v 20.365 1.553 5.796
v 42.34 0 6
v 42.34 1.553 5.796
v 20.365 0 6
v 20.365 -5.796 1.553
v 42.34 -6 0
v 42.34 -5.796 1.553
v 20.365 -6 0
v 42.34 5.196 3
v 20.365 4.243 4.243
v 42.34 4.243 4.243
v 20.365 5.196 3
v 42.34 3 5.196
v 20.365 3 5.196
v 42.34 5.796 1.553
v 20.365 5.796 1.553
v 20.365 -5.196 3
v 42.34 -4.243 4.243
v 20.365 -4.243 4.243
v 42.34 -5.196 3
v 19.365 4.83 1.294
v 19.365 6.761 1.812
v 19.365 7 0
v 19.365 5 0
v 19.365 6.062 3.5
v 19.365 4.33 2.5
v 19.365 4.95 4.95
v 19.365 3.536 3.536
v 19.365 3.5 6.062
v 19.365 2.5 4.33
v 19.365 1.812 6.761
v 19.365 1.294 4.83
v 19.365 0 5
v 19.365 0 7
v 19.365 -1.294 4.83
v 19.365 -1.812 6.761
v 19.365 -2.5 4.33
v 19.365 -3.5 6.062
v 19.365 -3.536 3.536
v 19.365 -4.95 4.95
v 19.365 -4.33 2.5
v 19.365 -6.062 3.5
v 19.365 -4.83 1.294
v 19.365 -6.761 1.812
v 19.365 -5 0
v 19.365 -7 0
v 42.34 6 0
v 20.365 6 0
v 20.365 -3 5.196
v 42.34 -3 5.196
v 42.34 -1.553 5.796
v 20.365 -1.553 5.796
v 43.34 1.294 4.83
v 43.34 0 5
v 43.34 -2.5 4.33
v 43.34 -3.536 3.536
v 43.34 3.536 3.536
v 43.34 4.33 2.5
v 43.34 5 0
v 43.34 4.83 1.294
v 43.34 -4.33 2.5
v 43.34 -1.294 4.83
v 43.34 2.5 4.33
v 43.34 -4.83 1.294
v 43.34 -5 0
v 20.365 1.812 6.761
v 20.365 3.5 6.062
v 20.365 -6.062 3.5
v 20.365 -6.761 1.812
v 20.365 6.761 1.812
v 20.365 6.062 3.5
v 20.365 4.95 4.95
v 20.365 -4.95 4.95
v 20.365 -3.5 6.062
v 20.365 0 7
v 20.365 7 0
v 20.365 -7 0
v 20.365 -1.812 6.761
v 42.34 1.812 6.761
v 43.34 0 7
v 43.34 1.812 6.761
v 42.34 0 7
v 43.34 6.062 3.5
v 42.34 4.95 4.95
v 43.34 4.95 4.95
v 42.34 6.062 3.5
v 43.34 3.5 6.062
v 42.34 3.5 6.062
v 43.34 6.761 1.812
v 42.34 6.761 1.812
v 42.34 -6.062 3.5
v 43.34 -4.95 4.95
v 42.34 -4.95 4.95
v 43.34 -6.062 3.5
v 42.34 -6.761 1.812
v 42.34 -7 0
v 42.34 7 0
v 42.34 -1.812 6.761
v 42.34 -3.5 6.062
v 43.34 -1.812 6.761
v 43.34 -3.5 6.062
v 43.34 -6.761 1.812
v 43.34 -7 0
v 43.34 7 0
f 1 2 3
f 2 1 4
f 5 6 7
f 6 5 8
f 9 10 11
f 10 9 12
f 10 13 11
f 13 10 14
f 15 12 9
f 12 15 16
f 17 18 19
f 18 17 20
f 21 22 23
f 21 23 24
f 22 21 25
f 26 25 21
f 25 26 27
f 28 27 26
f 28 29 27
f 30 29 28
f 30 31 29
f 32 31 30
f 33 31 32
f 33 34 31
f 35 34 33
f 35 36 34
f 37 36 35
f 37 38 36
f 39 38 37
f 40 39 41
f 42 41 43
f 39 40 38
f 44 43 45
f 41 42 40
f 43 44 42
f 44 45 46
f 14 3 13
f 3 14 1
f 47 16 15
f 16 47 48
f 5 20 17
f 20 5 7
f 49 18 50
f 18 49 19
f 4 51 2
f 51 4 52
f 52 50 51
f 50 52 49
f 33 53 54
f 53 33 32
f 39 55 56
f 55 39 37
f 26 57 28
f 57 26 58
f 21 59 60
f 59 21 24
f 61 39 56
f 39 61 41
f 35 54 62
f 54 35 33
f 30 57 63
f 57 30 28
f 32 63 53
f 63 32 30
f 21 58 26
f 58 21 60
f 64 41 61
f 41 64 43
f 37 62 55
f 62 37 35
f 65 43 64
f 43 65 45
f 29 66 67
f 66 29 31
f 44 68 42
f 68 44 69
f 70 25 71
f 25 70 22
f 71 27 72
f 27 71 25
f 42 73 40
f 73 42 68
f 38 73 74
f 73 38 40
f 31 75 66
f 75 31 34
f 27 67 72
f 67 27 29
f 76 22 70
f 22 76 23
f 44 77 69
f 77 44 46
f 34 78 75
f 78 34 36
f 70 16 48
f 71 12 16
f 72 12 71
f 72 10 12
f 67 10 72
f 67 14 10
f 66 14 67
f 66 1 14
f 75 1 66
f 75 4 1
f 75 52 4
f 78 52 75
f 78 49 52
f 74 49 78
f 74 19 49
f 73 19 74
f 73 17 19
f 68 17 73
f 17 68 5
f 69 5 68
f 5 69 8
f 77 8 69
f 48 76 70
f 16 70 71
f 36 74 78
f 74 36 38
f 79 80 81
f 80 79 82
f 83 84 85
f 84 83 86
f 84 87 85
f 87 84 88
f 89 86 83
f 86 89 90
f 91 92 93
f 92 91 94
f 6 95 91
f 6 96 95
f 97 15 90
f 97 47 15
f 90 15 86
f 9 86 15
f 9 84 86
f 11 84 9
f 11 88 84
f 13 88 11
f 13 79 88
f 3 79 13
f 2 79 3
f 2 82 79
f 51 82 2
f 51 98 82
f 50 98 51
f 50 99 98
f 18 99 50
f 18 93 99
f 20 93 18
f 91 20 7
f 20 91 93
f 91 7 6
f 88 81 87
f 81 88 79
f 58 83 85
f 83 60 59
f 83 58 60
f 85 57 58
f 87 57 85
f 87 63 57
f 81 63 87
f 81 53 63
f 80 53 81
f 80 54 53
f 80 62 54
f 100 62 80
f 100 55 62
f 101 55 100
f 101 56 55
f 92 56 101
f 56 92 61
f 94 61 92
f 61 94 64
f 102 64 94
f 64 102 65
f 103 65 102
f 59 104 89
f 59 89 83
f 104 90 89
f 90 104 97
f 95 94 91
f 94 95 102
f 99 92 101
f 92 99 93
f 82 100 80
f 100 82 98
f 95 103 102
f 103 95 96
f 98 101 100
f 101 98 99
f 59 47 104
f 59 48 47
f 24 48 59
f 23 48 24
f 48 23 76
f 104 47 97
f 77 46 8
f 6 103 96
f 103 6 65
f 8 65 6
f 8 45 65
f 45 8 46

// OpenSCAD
// file: ../build_environments.scad
// build_environments.scad: modules to build level sections
//

module pool(diameter=10.0, wall_height=2.0, step_width=3.0, connections=[])
{
    difference() {
        union() {
        difference() {
            cylinder(h=0.5,r1=diameter+step_width,r2=diameter+step_width,$fn=48);
            translate([0,0,-0.1])
                cylinder(h=0.7,r1=diameter,r2=diameter,$fn=48);
        }
        difference() {
            cylinder(h=wall_height,r1=diameter+step_width+1.0,r2=diameter+step_width+1.0,$fn=48);
            translate([0,0,-0.1])
                cylinder(h=wall_height+0.2,r1=diameter+step_width,r2=diameter+step_width,$fn=48);
        }
        }
    
        for (c = connections)
        {
            rotate([0,90,0]) {
                angle = atan2(c[1],c[0]);
                rotate([-angle,0,0]) {
                    cylinder(h=diameter+5.0,r1=c[2],r2=c[2],$fn=48);
                }
            }
        }
    }
}

module straight(length=10.0, width=2.0, dy1=0.0, dy2=0.0, dz=0.0)
{
    dims = [0, 0, 0, 0, 0, (dz/length)];
    matrix = [
        [ 1, dims[0], dims[1], 0 ],
        [ dims[2], 1, dims[4], 0 ],
        [ dims[5], dims[3], 1, 0 ],
        [ 0, 0, 0, 1 ]
    ];
    multmatrix(matrix)
    difference() {
        translate([dy1,0,0])
        union() {
            rotate([0,90,0]) {
                difference() {
                    cylinder(h=(length-dy1-dy2),r1=width+1.0,r2=width+1.0,$fn=24);
                    translate([0,0,-0.1])
                        cylinder(h=(length-dy1-dy2+0.2),r1=width,r2=width,$fn=24);
                }
                difference() {
                    cylinder(h=1.0,r1=width+2.0,r2=width+2.0,$fn=24);
                    translate([0,0,-0.1])
                        cylinder(h=1.2,r1=width,r2=width,$fn=24);
                }
                translate([0,0,(length-dy1-dy2)-1.0]) {
                    difference() {
                        cylinder(h=1.0,r1=width+2.0,r2=width+2.0,$fn=24);
                        translate([0,0,-0.1])
                            cylinder(h=1.2,r1=width,r2=width,$fn=24);
                    }
                }
            }
        }
        translate([0,0,-(2*width+4.0)/2])
            cube([3*length,3*length,2*width+4.0],center=true);
    }
}

module curve(p0=[0,0], center=[0,0], dir=1, angle=0.0, width=2.0)
{
    radius = sqrt((p0[0]-center[0])*(p0[0]-center[0]) + (p0[1]-center[1])*(p0[1]-center[1]));
    if (dir == 0) {
        difference() {
            rotate([0,0,-90])
            difference() {
                rotate_extrude(angle = angle, convexity = 10, $fn=32)
                    translate([radius, 0, 0])
                        circle(r = width+1.0,$fn=24);
                rotate([0,0,-1.0])
                    rotate_extrude(angle = angle+2.0, convexity = 10, $fn=32)
                        translate([radius, 0, 0])
                            circle(r = width,$fn=24);
            }
            translate([0,0,-(2*width+4.0)/2])
                cube([5*radius,5*radius,2*width+4.0],center=true);
        }
    }
    else {
        difference() {
            rotate([0,0,90])
            difference() {
                rotate_extrude(angle = -angle, convexity = 10, $fn=32)
                    translate([radius, 0, 0])
                        circle(r = width+1.0,$fn=24);
                rotate([0,0,1.0])
                    rotate_extrude(angle = -angle-2.0, convexity = 10, $fn=32)
                        translate([radius, 0, 0])
                            circle(r = width,$fn=24);
            }
            translate([0,0,-(2*width+4.0)/2])
                cube([5*radius,5*radius,2*width+4.0],center=true);
        }
    }

}

// test pool
//pool(diameter=12.0000, wall_height=3.0000, step_width=3.0000, connections=[[0.0000,-26.0000,2.0000], [23.6074,0.0000,2.0000]]);

// test straight, slope
//straight(length=26.0000, width=2.0000, dy1=11.8322, dy2=6.7082, dz=0.0000);
//straight(length=29.1549, width=12.0000, dy1=0.0000, dy2=0.0000, dz=-15.0000);

// test curve
//curve(p0=[23.6074, 0.0000], center=[23.6074, 5.0000], dir=0, angle=60.1011, width=2.0000);
//curve(p0=[33.6426, 12.4219], center=[37.9771, 9.9295], dir=1, angle=120.4627, width=2.0000);
// main file
use <../build_environments.scad>;
straight(length=52.0000, width=5.0000, dy1=19.3649, dy2=8.6603, dz=0.0000);
